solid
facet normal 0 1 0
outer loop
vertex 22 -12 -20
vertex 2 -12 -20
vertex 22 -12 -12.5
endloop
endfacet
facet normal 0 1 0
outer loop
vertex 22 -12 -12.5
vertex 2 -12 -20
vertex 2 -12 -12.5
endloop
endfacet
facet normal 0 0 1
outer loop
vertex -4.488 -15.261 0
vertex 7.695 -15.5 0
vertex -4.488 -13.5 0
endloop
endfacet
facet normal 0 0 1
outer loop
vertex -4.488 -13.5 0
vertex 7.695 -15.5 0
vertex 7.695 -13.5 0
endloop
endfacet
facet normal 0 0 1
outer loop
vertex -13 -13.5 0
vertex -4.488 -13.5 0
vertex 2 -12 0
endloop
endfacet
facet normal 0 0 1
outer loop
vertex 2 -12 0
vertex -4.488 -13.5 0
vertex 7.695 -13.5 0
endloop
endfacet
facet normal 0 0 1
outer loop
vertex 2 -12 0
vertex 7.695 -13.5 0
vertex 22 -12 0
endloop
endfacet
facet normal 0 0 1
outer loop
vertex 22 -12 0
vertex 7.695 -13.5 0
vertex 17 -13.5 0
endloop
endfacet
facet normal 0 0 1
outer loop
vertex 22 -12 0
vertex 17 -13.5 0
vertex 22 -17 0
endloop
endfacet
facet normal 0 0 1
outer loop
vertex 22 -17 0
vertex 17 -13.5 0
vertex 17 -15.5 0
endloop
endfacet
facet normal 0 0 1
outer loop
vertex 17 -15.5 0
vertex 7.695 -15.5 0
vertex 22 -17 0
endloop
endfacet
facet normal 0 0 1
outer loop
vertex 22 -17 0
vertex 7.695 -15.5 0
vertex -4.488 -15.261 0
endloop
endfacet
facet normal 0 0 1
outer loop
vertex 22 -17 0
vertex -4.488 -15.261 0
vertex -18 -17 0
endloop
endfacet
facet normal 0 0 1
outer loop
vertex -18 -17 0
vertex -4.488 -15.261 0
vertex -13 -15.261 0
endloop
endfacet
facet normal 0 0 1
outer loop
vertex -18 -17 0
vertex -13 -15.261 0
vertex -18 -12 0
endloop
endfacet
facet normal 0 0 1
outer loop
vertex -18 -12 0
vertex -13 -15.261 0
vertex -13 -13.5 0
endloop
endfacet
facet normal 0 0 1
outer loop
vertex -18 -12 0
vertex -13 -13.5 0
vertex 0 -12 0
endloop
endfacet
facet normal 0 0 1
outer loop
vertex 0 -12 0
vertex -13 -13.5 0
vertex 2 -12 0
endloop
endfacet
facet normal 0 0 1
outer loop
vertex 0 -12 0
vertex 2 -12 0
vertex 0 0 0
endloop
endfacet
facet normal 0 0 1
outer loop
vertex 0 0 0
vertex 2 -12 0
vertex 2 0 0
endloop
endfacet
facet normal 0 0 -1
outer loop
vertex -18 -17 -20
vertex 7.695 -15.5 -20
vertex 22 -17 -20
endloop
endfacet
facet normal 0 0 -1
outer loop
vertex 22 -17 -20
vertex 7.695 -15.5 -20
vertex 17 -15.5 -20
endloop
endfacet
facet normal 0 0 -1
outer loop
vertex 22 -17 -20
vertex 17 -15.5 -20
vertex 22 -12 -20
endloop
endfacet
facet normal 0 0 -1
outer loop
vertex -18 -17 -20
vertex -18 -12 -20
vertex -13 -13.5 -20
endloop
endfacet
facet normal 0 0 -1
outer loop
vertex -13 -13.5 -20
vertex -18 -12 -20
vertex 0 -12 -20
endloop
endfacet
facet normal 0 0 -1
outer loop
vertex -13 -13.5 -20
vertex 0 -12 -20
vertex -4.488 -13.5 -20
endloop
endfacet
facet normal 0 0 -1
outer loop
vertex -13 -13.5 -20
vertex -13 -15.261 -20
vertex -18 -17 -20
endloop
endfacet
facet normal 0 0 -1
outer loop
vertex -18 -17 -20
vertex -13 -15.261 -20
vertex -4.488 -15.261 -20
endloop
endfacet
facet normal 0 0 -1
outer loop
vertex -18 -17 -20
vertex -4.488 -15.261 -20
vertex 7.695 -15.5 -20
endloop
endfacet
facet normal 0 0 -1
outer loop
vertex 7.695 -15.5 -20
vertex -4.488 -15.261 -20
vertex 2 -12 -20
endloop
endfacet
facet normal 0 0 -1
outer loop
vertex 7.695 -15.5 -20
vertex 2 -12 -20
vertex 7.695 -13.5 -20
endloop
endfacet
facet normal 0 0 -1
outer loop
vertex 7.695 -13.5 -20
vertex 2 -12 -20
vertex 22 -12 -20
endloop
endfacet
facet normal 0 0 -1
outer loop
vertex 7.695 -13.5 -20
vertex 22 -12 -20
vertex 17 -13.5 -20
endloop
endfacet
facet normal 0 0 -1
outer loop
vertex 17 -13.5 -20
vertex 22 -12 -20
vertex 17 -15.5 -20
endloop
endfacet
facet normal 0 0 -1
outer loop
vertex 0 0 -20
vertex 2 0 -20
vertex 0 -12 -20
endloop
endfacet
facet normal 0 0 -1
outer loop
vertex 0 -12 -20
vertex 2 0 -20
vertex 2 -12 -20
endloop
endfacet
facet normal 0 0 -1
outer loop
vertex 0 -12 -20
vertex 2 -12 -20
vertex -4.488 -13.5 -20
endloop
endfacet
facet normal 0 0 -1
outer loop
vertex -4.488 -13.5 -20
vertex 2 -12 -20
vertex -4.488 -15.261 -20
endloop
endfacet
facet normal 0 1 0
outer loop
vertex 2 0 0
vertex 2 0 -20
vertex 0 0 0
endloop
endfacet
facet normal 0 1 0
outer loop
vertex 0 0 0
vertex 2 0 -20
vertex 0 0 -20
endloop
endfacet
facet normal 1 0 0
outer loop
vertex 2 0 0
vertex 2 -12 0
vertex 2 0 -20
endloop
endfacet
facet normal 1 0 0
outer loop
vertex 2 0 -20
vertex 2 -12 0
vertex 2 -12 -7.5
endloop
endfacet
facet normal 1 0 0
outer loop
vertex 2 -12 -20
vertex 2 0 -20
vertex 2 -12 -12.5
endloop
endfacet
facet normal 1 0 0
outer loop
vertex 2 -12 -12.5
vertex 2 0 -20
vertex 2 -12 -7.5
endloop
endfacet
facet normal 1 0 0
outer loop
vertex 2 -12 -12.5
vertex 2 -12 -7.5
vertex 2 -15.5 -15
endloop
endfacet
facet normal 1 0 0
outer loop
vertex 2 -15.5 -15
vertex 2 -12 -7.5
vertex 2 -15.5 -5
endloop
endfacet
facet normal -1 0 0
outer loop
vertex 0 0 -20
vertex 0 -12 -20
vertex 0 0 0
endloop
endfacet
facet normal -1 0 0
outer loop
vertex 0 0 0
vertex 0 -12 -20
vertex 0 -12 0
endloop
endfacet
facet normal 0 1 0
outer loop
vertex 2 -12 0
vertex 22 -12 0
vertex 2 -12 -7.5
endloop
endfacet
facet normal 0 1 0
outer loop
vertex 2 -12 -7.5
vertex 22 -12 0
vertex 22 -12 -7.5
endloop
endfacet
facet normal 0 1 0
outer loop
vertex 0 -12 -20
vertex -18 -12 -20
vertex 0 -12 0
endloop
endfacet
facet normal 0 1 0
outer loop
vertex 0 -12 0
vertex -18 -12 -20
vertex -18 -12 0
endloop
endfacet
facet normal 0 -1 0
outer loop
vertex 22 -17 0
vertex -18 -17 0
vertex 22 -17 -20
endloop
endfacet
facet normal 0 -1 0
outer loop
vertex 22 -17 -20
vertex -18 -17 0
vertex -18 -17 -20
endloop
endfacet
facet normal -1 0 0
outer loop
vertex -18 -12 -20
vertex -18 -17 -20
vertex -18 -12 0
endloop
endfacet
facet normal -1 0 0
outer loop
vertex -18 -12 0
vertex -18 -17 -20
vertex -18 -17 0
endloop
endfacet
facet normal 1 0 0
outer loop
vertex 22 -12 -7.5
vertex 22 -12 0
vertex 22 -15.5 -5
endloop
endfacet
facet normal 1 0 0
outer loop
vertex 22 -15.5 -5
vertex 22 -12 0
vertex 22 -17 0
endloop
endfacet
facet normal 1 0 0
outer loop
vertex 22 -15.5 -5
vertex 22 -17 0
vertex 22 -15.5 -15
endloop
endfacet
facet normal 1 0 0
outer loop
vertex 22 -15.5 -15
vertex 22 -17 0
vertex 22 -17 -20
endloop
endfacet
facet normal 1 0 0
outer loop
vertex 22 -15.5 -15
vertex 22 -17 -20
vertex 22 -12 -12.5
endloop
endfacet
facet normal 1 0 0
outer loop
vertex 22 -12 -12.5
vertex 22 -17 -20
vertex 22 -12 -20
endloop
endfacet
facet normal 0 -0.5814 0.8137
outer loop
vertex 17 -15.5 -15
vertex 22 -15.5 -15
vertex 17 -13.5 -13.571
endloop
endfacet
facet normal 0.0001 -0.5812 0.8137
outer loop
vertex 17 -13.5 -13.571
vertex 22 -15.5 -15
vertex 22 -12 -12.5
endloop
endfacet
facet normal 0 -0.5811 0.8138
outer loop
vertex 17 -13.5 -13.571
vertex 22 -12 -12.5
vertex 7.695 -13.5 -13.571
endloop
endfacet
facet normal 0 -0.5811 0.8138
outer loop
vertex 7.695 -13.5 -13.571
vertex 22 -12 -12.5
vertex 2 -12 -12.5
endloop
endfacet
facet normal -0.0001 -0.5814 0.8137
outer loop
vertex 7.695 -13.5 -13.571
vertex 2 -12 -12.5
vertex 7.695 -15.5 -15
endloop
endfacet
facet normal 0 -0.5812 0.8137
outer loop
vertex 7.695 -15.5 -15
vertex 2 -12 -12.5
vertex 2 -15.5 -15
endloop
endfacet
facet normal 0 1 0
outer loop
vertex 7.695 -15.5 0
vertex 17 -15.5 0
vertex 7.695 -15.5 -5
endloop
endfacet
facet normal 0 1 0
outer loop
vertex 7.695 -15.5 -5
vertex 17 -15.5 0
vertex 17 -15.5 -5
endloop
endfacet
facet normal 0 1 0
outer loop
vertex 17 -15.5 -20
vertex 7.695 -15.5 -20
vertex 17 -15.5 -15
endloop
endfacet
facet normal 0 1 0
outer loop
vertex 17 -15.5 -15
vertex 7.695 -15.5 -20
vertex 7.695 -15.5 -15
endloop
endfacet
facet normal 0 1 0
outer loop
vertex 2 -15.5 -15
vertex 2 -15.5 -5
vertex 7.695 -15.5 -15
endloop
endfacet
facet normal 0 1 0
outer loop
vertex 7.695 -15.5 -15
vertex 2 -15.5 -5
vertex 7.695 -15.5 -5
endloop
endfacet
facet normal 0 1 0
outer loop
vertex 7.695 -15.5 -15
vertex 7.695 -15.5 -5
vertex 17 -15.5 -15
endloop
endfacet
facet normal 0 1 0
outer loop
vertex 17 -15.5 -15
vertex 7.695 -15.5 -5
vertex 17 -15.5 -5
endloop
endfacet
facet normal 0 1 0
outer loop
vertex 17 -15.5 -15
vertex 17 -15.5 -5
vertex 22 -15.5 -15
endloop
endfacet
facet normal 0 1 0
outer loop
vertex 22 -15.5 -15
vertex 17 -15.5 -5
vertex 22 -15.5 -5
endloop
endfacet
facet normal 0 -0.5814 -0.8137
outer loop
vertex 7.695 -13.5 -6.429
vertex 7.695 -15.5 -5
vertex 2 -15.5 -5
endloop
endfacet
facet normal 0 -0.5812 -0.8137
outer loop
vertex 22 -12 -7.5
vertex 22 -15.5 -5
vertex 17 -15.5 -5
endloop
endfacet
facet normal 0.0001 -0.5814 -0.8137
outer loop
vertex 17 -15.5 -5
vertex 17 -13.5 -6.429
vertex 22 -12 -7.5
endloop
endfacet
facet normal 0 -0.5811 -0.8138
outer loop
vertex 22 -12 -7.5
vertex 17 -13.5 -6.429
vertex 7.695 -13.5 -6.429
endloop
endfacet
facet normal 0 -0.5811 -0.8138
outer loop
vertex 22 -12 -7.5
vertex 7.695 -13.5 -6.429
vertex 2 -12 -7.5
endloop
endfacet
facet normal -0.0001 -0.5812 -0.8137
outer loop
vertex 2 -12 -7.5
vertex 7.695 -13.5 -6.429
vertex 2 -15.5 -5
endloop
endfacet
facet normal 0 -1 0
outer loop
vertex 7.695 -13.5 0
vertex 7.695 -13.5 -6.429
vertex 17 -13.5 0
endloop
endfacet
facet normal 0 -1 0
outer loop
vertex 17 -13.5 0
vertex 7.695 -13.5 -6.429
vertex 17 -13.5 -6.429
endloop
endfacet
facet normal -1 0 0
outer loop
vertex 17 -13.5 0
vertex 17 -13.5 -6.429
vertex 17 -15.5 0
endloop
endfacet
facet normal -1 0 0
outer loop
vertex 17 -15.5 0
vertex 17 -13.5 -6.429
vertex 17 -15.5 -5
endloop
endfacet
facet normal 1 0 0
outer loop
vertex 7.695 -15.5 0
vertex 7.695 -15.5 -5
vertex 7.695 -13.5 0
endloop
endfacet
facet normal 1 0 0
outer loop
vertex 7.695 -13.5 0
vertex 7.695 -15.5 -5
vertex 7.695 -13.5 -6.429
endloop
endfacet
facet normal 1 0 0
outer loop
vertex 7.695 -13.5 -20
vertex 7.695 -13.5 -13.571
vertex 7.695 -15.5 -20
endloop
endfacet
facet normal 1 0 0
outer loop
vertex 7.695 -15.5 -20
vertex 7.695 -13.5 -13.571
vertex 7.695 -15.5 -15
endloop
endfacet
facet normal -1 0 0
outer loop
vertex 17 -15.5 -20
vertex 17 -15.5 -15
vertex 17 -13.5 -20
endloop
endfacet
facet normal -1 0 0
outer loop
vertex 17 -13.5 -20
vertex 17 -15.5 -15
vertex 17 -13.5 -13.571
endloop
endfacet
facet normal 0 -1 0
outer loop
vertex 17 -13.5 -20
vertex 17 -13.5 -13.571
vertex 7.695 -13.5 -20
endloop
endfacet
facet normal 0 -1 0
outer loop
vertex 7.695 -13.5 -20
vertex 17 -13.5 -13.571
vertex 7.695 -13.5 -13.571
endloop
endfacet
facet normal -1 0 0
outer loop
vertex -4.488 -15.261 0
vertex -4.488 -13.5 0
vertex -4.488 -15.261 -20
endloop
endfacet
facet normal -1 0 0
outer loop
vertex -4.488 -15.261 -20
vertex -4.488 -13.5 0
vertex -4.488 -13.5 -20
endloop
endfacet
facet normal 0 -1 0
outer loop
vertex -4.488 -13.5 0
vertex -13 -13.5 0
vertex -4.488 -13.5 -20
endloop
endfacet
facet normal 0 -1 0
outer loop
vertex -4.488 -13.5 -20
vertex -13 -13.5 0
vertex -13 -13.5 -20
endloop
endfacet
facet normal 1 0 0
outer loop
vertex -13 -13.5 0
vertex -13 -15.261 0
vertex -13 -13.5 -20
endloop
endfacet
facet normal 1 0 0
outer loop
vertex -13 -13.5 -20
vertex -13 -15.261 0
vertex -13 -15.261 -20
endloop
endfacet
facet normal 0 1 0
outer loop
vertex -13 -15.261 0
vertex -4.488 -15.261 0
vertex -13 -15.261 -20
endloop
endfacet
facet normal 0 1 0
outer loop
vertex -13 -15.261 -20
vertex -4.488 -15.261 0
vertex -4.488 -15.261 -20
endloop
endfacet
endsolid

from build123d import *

# Parameters (mm, degrees)
SKETCH3_W                = 20
SKETCH3_H                = 12
BOSS_EXTRUDE3_DEPTH      = 2
BOSS_EXTRUDE5_DEPTH      = 20
BOSS_EXTRUDE5_DEPTH_BACK = 20
SKETCH4_W                = 20
SKETCH4_H                = 5
CUT_EXTRUDE1_DEPTH       = 20
SKETCH7_W                = 8.512199936
SKETCH7_H                = 1.761144814
SKETCH7_W_2              = 9.304715103
SKETCH7_H_2              = 2
CUT_EXTRUDE2_DEPTH       = 35.249087579


with BuildPart() as part:
    # Sketch3 → Boss-Extrude3 (new body)
    with BuildSketch(Plane(origin=(0, 0, 0), x_dir=(0, 0, -1), z_dir=(1, 0, 0))):
        with Locations((10, -6)):
            Rectangle(SKETCH3_W, SKETCH3_H)
    extrude(amount=BOSS_EXTRUDE3_DEPTH)

    # Sketch4 → Boss-Extrude5 (add, two sides: drawn at the far end of the back side and taken through both)
    with BuildSketch(Plane(origin=(2, 0, 0), x_dir=(0, 0, -1), z_dir=(1, 0, 0)).offset(-BOSS_EXTRUDE5_DEPTH_BACK)):
        with Locations((10, -14.5)):
            Rectangle(SKETCH4_W, SKETCH4_H)
    extrude(amount=BOSS_EXTRUDE5_DEPTH + BOSS_EXTRUDE5_DEPTH_BACK)

    # Sketch6 → Cut-Extrude1 (cut)
    with BuildSketch(Plane(origin=(22, 0, 0), x_dir=(0, 0, -1), z_dir=(1, 0, 0))):
        Polygon((7.5, -12), (12.5, -12), (15, -15.5), (5, -15.5), align=None)
    extrude(amount=-CUT_EXTRUDE1_DEPTH, mode=Mode.SUBTRACT)

    # Sketch7 → Cut-Extrude2 (cut, through all)
    with BuildSketch(Plane(origin=(0, 0, -20), x_dir=(-1, 0, 0), z_dir=(0, 0, -1))):
        with Locations((8.743900032, -14.380572407)):
            Rectangle(SKETCH7_W, SKETCH7_H)
        with Locations((-12.347642449, -14.5)):
            Rectangle(SKETCH7_W_2, SKETCH7_H_2)
    extrude(amount=-CUT_EXTRUDE2_DEPTH, mode=Mode.SUBTRACT)


solid = part.part
